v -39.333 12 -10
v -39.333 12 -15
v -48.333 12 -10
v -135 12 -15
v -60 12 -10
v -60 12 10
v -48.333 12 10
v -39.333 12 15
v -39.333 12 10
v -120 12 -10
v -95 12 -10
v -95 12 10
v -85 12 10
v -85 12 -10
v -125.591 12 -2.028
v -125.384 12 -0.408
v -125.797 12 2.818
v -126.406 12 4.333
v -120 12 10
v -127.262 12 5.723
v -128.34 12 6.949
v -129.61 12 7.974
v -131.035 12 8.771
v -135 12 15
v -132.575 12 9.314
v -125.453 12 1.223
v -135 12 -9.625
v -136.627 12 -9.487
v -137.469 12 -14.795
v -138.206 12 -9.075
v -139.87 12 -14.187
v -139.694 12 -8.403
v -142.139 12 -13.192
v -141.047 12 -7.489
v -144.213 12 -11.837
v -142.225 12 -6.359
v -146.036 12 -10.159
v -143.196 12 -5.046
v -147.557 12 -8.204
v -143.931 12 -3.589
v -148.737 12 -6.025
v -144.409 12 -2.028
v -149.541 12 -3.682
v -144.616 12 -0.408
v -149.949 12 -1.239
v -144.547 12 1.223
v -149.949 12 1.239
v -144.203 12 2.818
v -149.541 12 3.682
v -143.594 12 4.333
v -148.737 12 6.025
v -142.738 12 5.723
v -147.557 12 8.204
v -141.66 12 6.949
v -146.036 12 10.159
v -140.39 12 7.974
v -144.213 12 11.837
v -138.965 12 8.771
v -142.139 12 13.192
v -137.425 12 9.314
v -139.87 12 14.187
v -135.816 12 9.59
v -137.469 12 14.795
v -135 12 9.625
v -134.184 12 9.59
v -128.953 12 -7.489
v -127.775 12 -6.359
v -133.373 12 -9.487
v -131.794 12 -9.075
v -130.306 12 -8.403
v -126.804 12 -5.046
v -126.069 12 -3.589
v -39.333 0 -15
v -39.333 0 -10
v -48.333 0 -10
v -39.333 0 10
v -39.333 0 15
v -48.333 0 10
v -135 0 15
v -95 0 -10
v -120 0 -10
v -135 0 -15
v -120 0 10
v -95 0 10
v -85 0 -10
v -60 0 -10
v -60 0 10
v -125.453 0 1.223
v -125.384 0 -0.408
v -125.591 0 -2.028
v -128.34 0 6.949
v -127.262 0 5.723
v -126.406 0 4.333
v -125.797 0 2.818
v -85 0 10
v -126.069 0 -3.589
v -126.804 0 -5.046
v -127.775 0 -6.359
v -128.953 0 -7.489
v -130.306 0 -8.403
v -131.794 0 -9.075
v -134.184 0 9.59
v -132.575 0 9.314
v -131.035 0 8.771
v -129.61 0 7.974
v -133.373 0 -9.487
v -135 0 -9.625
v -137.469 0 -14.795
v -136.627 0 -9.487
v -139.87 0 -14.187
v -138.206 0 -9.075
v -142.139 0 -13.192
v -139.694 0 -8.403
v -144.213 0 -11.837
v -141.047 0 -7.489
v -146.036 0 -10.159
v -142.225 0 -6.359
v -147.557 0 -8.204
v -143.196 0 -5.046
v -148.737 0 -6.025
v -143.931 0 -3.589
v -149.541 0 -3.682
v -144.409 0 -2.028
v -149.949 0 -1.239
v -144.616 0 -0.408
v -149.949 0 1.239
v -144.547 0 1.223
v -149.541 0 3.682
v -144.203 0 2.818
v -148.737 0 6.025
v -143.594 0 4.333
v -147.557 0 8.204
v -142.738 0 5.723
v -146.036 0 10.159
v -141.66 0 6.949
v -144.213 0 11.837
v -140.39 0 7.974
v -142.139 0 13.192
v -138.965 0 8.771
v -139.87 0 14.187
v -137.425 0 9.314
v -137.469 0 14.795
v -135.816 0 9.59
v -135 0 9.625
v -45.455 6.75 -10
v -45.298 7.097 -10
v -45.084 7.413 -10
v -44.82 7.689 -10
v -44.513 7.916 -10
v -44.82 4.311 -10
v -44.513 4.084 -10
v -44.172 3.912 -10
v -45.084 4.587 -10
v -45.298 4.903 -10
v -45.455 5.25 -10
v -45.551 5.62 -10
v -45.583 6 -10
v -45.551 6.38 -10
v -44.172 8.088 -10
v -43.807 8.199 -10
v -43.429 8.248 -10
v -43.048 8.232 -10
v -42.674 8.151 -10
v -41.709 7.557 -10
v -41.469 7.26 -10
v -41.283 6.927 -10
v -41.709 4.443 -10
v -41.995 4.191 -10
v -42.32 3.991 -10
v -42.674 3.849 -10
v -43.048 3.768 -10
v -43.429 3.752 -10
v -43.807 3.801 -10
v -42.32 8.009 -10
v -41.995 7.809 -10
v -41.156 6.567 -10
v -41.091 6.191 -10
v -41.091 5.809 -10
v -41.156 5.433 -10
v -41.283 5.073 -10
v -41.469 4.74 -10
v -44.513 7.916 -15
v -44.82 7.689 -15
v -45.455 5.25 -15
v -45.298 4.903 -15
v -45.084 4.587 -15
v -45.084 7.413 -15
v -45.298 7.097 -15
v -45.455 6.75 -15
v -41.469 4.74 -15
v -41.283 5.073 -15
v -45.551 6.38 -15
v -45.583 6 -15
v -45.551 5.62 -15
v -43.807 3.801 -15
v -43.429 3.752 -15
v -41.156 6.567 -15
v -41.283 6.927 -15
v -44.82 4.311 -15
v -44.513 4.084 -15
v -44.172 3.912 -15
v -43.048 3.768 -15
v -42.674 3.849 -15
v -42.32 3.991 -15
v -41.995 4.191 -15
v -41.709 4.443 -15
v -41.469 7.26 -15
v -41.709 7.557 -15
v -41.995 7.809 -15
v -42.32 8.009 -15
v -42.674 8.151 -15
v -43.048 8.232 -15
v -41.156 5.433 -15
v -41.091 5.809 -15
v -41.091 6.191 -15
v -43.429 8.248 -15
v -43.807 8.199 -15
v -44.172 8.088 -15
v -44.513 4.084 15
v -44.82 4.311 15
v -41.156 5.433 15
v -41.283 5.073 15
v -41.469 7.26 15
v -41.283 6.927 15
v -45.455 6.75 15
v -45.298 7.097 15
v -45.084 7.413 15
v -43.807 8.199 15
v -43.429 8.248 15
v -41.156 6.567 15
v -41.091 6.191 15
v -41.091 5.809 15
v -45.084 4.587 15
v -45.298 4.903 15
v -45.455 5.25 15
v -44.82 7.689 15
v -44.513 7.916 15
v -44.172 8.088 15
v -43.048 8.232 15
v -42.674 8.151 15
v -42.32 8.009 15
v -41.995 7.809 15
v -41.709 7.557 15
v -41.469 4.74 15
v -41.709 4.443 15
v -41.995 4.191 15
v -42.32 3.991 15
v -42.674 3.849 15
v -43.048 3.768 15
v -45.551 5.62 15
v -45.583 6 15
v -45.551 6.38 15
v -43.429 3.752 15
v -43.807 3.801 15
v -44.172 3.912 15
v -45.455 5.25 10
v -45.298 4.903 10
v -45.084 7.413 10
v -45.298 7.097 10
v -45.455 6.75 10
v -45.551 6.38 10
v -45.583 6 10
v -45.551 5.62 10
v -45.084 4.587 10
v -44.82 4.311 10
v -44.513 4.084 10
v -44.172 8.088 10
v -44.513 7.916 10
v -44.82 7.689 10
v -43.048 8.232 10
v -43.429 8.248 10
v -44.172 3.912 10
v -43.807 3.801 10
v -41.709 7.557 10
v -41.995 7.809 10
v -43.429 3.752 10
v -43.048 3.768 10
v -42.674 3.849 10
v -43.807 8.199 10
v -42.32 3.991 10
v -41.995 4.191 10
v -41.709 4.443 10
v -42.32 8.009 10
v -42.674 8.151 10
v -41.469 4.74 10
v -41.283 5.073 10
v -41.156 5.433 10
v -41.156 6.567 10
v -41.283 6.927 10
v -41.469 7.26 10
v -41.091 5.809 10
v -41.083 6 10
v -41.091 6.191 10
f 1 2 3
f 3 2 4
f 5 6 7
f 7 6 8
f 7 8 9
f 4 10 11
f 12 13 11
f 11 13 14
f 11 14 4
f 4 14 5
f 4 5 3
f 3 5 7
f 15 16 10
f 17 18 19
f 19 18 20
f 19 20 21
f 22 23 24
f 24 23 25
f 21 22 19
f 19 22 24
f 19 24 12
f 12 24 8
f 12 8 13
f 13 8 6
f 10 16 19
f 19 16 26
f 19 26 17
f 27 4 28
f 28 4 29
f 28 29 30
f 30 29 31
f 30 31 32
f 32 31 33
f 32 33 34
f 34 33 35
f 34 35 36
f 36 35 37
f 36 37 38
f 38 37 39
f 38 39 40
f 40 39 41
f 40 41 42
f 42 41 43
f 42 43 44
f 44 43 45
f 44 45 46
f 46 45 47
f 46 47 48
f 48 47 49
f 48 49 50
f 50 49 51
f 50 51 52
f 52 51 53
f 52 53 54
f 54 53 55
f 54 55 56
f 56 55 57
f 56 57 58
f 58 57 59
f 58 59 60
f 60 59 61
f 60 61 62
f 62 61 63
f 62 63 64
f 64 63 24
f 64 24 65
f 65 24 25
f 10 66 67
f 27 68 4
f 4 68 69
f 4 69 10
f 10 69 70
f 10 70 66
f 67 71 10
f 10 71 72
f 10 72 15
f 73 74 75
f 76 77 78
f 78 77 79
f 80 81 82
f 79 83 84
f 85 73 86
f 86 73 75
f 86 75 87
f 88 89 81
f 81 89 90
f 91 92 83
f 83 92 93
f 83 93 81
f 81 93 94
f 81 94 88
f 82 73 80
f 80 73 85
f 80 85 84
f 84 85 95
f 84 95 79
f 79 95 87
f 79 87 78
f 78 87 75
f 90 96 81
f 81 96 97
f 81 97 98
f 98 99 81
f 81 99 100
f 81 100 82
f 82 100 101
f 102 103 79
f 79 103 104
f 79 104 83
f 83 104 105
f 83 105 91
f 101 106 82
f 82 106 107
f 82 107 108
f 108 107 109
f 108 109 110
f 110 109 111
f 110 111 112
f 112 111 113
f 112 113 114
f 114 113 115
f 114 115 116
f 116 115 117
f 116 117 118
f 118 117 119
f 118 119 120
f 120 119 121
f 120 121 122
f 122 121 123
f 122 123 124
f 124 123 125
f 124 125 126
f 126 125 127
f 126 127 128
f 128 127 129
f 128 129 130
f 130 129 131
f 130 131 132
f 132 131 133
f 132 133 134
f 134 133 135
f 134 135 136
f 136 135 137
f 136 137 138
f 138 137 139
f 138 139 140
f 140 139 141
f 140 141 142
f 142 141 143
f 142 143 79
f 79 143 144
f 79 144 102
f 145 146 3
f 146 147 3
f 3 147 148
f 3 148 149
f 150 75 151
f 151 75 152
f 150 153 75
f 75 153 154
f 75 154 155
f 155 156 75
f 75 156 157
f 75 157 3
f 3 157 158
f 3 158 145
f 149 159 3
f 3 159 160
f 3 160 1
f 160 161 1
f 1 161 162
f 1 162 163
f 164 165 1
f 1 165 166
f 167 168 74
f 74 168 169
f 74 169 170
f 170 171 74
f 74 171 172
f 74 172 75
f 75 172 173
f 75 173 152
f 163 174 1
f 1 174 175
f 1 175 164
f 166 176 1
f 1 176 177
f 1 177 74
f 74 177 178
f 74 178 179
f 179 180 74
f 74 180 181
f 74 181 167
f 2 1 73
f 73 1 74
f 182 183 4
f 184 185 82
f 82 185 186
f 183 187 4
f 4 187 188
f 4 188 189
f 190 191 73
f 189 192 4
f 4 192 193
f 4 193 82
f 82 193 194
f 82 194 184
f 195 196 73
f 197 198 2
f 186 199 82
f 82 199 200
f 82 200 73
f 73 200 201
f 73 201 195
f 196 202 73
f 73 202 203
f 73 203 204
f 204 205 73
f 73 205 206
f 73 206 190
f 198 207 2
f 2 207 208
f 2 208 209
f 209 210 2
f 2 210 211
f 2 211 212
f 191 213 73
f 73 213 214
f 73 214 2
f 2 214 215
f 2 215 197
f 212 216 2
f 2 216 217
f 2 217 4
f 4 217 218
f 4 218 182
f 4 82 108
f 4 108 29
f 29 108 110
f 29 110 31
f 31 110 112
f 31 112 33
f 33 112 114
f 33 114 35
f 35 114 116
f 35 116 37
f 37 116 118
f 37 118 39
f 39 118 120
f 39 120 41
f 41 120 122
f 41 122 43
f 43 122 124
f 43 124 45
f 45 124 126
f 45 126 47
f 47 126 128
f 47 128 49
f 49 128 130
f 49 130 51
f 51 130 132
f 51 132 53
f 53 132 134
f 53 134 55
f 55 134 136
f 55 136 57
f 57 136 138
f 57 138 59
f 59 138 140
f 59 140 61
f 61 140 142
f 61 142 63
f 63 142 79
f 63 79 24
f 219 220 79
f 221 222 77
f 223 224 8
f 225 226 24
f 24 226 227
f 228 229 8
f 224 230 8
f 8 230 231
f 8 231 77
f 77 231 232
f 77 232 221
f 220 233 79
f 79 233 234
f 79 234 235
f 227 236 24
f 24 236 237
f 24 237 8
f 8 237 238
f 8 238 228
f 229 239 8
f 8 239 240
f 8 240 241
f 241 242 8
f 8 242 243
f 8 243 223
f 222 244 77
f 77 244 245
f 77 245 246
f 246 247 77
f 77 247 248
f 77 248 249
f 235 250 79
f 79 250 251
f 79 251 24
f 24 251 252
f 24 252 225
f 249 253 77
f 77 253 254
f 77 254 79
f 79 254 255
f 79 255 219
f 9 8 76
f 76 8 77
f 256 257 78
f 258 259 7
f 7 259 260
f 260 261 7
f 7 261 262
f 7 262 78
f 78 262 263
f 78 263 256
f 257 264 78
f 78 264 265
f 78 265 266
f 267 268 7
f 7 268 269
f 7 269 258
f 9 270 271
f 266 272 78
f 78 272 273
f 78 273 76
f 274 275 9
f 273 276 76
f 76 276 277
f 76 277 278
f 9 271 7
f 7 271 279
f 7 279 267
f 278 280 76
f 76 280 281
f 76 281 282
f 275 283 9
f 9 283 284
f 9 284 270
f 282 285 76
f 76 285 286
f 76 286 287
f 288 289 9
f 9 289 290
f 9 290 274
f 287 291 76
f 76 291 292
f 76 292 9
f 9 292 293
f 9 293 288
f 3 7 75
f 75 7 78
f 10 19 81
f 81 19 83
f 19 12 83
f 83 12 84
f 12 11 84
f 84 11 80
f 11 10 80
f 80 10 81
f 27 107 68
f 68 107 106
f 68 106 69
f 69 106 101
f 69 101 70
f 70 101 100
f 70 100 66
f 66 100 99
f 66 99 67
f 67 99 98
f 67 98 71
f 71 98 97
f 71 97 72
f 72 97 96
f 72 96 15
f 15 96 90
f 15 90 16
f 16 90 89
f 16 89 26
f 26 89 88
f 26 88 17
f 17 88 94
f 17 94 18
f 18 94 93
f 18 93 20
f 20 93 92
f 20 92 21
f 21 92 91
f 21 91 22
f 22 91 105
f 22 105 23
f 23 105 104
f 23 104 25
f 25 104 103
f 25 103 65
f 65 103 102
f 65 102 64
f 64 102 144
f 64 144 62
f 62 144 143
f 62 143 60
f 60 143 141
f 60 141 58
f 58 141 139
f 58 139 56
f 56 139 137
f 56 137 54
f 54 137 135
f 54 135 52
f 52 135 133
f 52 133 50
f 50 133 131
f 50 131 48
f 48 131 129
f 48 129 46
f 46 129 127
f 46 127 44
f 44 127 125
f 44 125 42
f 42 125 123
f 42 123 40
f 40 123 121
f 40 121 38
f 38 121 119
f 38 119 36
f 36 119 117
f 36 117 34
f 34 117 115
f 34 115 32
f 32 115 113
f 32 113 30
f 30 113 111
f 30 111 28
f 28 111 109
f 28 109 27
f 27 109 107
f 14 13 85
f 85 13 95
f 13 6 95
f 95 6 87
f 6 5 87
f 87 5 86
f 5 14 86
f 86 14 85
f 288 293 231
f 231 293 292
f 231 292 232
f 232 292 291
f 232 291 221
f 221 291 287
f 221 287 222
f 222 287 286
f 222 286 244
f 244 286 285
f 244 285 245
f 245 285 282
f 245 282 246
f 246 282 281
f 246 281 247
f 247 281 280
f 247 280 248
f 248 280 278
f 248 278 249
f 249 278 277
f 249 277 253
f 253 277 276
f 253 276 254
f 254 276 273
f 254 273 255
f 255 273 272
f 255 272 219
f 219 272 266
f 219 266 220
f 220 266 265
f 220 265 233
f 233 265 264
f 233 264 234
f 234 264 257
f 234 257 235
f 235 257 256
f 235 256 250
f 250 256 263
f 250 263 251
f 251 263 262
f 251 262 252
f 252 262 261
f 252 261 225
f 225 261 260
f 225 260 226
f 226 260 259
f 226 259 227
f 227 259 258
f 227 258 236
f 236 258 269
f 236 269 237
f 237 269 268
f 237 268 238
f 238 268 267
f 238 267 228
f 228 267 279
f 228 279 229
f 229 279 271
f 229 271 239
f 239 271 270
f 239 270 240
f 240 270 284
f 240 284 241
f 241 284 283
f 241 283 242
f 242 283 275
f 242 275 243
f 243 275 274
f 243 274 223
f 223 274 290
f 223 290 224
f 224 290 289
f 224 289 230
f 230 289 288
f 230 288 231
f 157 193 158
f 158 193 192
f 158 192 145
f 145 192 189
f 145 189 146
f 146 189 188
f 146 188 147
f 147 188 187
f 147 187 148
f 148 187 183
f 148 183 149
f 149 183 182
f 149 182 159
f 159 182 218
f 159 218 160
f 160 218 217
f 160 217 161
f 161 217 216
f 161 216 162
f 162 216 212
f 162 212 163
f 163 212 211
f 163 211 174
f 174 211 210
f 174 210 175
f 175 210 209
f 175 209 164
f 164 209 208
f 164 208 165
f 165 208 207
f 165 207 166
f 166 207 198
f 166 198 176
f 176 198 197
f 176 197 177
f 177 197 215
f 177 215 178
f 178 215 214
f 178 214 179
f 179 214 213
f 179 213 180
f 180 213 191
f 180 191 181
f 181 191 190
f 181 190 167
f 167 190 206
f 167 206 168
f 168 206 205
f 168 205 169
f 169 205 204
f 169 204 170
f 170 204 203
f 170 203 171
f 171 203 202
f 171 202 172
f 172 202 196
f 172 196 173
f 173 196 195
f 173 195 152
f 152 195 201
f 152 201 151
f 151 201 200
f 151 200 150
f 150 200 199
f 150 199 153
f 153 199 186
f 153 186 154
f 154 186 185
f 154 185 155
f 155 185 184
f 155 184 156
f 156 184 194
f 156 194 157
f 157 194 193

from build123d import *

# Parameters (mm, degrees)
SKETCH1_R           = 9.625
SKETCH1_W           = 25
SKETCH1_H           = 20
BOSS_EXTRUDE1_DEPTH = 12
SKETCH2_R           = 2.25
CUT_EXTRUDE1_DEPTH  = 154.440542231


with BuildPart() as part:
    # Sketch1 → Boss-Extrude1 (new body)
    with BuildSketch(Plane(origin=(0, 0, 0), x_dir=(1, 0, 0), z_dir=(0, 1, 0))):
        with BuildLine():
            Line((-135, 15), (-39.3333, 15))
            Line((-39.3333, 15), (-39.3333, 10))
            Line((-39.3333, 10), (-48.3333, 10))
            Line((-48.3333, 10), (-48.3333, -10))
            Line((-48.3333, -10), (-39.3333, -10))
            Line((-39.3333, -10), (-39.3333, -15))
            Line((-39.3333, -15), (-135, -15))
            ThreePointArc((-135, -15), (-150, 0), (-135, 15))
        make_face()
        with Locations(Location((-135, 0, 0), (0, 0, 270))):
            Circle(SKETCH1_R, mode=Mode.SUBTRACT)
        with Locations((-107.5, 0)):
            Rectangle(SKETCH1_W, SKETCH1_H, mode=Mode.SUBTRACT)
        with Locations((-72.5, 0)):
            Rectangle(SKETCH1_W, SKETCH1_H, mode=Mode.SUBTRACT)
    extrude(amount=BOSS_EXTRUDE1_DEPTH)

    # Sketch2 → Cut-Extrude1 (cut, through all)
    with BuildSketch(Plane(origin=(0, 0, -15), x_dir=(-1, 0, 0), z_dir=(0, 0, -1))):
        with Locations((43.3333, 6)):
            Circle(SKETCH2_R)
    extrude(amount=-CUT_EXTRUDE1_DEPTH, mode=Mode.SUBTRACT)


solid = part.part
